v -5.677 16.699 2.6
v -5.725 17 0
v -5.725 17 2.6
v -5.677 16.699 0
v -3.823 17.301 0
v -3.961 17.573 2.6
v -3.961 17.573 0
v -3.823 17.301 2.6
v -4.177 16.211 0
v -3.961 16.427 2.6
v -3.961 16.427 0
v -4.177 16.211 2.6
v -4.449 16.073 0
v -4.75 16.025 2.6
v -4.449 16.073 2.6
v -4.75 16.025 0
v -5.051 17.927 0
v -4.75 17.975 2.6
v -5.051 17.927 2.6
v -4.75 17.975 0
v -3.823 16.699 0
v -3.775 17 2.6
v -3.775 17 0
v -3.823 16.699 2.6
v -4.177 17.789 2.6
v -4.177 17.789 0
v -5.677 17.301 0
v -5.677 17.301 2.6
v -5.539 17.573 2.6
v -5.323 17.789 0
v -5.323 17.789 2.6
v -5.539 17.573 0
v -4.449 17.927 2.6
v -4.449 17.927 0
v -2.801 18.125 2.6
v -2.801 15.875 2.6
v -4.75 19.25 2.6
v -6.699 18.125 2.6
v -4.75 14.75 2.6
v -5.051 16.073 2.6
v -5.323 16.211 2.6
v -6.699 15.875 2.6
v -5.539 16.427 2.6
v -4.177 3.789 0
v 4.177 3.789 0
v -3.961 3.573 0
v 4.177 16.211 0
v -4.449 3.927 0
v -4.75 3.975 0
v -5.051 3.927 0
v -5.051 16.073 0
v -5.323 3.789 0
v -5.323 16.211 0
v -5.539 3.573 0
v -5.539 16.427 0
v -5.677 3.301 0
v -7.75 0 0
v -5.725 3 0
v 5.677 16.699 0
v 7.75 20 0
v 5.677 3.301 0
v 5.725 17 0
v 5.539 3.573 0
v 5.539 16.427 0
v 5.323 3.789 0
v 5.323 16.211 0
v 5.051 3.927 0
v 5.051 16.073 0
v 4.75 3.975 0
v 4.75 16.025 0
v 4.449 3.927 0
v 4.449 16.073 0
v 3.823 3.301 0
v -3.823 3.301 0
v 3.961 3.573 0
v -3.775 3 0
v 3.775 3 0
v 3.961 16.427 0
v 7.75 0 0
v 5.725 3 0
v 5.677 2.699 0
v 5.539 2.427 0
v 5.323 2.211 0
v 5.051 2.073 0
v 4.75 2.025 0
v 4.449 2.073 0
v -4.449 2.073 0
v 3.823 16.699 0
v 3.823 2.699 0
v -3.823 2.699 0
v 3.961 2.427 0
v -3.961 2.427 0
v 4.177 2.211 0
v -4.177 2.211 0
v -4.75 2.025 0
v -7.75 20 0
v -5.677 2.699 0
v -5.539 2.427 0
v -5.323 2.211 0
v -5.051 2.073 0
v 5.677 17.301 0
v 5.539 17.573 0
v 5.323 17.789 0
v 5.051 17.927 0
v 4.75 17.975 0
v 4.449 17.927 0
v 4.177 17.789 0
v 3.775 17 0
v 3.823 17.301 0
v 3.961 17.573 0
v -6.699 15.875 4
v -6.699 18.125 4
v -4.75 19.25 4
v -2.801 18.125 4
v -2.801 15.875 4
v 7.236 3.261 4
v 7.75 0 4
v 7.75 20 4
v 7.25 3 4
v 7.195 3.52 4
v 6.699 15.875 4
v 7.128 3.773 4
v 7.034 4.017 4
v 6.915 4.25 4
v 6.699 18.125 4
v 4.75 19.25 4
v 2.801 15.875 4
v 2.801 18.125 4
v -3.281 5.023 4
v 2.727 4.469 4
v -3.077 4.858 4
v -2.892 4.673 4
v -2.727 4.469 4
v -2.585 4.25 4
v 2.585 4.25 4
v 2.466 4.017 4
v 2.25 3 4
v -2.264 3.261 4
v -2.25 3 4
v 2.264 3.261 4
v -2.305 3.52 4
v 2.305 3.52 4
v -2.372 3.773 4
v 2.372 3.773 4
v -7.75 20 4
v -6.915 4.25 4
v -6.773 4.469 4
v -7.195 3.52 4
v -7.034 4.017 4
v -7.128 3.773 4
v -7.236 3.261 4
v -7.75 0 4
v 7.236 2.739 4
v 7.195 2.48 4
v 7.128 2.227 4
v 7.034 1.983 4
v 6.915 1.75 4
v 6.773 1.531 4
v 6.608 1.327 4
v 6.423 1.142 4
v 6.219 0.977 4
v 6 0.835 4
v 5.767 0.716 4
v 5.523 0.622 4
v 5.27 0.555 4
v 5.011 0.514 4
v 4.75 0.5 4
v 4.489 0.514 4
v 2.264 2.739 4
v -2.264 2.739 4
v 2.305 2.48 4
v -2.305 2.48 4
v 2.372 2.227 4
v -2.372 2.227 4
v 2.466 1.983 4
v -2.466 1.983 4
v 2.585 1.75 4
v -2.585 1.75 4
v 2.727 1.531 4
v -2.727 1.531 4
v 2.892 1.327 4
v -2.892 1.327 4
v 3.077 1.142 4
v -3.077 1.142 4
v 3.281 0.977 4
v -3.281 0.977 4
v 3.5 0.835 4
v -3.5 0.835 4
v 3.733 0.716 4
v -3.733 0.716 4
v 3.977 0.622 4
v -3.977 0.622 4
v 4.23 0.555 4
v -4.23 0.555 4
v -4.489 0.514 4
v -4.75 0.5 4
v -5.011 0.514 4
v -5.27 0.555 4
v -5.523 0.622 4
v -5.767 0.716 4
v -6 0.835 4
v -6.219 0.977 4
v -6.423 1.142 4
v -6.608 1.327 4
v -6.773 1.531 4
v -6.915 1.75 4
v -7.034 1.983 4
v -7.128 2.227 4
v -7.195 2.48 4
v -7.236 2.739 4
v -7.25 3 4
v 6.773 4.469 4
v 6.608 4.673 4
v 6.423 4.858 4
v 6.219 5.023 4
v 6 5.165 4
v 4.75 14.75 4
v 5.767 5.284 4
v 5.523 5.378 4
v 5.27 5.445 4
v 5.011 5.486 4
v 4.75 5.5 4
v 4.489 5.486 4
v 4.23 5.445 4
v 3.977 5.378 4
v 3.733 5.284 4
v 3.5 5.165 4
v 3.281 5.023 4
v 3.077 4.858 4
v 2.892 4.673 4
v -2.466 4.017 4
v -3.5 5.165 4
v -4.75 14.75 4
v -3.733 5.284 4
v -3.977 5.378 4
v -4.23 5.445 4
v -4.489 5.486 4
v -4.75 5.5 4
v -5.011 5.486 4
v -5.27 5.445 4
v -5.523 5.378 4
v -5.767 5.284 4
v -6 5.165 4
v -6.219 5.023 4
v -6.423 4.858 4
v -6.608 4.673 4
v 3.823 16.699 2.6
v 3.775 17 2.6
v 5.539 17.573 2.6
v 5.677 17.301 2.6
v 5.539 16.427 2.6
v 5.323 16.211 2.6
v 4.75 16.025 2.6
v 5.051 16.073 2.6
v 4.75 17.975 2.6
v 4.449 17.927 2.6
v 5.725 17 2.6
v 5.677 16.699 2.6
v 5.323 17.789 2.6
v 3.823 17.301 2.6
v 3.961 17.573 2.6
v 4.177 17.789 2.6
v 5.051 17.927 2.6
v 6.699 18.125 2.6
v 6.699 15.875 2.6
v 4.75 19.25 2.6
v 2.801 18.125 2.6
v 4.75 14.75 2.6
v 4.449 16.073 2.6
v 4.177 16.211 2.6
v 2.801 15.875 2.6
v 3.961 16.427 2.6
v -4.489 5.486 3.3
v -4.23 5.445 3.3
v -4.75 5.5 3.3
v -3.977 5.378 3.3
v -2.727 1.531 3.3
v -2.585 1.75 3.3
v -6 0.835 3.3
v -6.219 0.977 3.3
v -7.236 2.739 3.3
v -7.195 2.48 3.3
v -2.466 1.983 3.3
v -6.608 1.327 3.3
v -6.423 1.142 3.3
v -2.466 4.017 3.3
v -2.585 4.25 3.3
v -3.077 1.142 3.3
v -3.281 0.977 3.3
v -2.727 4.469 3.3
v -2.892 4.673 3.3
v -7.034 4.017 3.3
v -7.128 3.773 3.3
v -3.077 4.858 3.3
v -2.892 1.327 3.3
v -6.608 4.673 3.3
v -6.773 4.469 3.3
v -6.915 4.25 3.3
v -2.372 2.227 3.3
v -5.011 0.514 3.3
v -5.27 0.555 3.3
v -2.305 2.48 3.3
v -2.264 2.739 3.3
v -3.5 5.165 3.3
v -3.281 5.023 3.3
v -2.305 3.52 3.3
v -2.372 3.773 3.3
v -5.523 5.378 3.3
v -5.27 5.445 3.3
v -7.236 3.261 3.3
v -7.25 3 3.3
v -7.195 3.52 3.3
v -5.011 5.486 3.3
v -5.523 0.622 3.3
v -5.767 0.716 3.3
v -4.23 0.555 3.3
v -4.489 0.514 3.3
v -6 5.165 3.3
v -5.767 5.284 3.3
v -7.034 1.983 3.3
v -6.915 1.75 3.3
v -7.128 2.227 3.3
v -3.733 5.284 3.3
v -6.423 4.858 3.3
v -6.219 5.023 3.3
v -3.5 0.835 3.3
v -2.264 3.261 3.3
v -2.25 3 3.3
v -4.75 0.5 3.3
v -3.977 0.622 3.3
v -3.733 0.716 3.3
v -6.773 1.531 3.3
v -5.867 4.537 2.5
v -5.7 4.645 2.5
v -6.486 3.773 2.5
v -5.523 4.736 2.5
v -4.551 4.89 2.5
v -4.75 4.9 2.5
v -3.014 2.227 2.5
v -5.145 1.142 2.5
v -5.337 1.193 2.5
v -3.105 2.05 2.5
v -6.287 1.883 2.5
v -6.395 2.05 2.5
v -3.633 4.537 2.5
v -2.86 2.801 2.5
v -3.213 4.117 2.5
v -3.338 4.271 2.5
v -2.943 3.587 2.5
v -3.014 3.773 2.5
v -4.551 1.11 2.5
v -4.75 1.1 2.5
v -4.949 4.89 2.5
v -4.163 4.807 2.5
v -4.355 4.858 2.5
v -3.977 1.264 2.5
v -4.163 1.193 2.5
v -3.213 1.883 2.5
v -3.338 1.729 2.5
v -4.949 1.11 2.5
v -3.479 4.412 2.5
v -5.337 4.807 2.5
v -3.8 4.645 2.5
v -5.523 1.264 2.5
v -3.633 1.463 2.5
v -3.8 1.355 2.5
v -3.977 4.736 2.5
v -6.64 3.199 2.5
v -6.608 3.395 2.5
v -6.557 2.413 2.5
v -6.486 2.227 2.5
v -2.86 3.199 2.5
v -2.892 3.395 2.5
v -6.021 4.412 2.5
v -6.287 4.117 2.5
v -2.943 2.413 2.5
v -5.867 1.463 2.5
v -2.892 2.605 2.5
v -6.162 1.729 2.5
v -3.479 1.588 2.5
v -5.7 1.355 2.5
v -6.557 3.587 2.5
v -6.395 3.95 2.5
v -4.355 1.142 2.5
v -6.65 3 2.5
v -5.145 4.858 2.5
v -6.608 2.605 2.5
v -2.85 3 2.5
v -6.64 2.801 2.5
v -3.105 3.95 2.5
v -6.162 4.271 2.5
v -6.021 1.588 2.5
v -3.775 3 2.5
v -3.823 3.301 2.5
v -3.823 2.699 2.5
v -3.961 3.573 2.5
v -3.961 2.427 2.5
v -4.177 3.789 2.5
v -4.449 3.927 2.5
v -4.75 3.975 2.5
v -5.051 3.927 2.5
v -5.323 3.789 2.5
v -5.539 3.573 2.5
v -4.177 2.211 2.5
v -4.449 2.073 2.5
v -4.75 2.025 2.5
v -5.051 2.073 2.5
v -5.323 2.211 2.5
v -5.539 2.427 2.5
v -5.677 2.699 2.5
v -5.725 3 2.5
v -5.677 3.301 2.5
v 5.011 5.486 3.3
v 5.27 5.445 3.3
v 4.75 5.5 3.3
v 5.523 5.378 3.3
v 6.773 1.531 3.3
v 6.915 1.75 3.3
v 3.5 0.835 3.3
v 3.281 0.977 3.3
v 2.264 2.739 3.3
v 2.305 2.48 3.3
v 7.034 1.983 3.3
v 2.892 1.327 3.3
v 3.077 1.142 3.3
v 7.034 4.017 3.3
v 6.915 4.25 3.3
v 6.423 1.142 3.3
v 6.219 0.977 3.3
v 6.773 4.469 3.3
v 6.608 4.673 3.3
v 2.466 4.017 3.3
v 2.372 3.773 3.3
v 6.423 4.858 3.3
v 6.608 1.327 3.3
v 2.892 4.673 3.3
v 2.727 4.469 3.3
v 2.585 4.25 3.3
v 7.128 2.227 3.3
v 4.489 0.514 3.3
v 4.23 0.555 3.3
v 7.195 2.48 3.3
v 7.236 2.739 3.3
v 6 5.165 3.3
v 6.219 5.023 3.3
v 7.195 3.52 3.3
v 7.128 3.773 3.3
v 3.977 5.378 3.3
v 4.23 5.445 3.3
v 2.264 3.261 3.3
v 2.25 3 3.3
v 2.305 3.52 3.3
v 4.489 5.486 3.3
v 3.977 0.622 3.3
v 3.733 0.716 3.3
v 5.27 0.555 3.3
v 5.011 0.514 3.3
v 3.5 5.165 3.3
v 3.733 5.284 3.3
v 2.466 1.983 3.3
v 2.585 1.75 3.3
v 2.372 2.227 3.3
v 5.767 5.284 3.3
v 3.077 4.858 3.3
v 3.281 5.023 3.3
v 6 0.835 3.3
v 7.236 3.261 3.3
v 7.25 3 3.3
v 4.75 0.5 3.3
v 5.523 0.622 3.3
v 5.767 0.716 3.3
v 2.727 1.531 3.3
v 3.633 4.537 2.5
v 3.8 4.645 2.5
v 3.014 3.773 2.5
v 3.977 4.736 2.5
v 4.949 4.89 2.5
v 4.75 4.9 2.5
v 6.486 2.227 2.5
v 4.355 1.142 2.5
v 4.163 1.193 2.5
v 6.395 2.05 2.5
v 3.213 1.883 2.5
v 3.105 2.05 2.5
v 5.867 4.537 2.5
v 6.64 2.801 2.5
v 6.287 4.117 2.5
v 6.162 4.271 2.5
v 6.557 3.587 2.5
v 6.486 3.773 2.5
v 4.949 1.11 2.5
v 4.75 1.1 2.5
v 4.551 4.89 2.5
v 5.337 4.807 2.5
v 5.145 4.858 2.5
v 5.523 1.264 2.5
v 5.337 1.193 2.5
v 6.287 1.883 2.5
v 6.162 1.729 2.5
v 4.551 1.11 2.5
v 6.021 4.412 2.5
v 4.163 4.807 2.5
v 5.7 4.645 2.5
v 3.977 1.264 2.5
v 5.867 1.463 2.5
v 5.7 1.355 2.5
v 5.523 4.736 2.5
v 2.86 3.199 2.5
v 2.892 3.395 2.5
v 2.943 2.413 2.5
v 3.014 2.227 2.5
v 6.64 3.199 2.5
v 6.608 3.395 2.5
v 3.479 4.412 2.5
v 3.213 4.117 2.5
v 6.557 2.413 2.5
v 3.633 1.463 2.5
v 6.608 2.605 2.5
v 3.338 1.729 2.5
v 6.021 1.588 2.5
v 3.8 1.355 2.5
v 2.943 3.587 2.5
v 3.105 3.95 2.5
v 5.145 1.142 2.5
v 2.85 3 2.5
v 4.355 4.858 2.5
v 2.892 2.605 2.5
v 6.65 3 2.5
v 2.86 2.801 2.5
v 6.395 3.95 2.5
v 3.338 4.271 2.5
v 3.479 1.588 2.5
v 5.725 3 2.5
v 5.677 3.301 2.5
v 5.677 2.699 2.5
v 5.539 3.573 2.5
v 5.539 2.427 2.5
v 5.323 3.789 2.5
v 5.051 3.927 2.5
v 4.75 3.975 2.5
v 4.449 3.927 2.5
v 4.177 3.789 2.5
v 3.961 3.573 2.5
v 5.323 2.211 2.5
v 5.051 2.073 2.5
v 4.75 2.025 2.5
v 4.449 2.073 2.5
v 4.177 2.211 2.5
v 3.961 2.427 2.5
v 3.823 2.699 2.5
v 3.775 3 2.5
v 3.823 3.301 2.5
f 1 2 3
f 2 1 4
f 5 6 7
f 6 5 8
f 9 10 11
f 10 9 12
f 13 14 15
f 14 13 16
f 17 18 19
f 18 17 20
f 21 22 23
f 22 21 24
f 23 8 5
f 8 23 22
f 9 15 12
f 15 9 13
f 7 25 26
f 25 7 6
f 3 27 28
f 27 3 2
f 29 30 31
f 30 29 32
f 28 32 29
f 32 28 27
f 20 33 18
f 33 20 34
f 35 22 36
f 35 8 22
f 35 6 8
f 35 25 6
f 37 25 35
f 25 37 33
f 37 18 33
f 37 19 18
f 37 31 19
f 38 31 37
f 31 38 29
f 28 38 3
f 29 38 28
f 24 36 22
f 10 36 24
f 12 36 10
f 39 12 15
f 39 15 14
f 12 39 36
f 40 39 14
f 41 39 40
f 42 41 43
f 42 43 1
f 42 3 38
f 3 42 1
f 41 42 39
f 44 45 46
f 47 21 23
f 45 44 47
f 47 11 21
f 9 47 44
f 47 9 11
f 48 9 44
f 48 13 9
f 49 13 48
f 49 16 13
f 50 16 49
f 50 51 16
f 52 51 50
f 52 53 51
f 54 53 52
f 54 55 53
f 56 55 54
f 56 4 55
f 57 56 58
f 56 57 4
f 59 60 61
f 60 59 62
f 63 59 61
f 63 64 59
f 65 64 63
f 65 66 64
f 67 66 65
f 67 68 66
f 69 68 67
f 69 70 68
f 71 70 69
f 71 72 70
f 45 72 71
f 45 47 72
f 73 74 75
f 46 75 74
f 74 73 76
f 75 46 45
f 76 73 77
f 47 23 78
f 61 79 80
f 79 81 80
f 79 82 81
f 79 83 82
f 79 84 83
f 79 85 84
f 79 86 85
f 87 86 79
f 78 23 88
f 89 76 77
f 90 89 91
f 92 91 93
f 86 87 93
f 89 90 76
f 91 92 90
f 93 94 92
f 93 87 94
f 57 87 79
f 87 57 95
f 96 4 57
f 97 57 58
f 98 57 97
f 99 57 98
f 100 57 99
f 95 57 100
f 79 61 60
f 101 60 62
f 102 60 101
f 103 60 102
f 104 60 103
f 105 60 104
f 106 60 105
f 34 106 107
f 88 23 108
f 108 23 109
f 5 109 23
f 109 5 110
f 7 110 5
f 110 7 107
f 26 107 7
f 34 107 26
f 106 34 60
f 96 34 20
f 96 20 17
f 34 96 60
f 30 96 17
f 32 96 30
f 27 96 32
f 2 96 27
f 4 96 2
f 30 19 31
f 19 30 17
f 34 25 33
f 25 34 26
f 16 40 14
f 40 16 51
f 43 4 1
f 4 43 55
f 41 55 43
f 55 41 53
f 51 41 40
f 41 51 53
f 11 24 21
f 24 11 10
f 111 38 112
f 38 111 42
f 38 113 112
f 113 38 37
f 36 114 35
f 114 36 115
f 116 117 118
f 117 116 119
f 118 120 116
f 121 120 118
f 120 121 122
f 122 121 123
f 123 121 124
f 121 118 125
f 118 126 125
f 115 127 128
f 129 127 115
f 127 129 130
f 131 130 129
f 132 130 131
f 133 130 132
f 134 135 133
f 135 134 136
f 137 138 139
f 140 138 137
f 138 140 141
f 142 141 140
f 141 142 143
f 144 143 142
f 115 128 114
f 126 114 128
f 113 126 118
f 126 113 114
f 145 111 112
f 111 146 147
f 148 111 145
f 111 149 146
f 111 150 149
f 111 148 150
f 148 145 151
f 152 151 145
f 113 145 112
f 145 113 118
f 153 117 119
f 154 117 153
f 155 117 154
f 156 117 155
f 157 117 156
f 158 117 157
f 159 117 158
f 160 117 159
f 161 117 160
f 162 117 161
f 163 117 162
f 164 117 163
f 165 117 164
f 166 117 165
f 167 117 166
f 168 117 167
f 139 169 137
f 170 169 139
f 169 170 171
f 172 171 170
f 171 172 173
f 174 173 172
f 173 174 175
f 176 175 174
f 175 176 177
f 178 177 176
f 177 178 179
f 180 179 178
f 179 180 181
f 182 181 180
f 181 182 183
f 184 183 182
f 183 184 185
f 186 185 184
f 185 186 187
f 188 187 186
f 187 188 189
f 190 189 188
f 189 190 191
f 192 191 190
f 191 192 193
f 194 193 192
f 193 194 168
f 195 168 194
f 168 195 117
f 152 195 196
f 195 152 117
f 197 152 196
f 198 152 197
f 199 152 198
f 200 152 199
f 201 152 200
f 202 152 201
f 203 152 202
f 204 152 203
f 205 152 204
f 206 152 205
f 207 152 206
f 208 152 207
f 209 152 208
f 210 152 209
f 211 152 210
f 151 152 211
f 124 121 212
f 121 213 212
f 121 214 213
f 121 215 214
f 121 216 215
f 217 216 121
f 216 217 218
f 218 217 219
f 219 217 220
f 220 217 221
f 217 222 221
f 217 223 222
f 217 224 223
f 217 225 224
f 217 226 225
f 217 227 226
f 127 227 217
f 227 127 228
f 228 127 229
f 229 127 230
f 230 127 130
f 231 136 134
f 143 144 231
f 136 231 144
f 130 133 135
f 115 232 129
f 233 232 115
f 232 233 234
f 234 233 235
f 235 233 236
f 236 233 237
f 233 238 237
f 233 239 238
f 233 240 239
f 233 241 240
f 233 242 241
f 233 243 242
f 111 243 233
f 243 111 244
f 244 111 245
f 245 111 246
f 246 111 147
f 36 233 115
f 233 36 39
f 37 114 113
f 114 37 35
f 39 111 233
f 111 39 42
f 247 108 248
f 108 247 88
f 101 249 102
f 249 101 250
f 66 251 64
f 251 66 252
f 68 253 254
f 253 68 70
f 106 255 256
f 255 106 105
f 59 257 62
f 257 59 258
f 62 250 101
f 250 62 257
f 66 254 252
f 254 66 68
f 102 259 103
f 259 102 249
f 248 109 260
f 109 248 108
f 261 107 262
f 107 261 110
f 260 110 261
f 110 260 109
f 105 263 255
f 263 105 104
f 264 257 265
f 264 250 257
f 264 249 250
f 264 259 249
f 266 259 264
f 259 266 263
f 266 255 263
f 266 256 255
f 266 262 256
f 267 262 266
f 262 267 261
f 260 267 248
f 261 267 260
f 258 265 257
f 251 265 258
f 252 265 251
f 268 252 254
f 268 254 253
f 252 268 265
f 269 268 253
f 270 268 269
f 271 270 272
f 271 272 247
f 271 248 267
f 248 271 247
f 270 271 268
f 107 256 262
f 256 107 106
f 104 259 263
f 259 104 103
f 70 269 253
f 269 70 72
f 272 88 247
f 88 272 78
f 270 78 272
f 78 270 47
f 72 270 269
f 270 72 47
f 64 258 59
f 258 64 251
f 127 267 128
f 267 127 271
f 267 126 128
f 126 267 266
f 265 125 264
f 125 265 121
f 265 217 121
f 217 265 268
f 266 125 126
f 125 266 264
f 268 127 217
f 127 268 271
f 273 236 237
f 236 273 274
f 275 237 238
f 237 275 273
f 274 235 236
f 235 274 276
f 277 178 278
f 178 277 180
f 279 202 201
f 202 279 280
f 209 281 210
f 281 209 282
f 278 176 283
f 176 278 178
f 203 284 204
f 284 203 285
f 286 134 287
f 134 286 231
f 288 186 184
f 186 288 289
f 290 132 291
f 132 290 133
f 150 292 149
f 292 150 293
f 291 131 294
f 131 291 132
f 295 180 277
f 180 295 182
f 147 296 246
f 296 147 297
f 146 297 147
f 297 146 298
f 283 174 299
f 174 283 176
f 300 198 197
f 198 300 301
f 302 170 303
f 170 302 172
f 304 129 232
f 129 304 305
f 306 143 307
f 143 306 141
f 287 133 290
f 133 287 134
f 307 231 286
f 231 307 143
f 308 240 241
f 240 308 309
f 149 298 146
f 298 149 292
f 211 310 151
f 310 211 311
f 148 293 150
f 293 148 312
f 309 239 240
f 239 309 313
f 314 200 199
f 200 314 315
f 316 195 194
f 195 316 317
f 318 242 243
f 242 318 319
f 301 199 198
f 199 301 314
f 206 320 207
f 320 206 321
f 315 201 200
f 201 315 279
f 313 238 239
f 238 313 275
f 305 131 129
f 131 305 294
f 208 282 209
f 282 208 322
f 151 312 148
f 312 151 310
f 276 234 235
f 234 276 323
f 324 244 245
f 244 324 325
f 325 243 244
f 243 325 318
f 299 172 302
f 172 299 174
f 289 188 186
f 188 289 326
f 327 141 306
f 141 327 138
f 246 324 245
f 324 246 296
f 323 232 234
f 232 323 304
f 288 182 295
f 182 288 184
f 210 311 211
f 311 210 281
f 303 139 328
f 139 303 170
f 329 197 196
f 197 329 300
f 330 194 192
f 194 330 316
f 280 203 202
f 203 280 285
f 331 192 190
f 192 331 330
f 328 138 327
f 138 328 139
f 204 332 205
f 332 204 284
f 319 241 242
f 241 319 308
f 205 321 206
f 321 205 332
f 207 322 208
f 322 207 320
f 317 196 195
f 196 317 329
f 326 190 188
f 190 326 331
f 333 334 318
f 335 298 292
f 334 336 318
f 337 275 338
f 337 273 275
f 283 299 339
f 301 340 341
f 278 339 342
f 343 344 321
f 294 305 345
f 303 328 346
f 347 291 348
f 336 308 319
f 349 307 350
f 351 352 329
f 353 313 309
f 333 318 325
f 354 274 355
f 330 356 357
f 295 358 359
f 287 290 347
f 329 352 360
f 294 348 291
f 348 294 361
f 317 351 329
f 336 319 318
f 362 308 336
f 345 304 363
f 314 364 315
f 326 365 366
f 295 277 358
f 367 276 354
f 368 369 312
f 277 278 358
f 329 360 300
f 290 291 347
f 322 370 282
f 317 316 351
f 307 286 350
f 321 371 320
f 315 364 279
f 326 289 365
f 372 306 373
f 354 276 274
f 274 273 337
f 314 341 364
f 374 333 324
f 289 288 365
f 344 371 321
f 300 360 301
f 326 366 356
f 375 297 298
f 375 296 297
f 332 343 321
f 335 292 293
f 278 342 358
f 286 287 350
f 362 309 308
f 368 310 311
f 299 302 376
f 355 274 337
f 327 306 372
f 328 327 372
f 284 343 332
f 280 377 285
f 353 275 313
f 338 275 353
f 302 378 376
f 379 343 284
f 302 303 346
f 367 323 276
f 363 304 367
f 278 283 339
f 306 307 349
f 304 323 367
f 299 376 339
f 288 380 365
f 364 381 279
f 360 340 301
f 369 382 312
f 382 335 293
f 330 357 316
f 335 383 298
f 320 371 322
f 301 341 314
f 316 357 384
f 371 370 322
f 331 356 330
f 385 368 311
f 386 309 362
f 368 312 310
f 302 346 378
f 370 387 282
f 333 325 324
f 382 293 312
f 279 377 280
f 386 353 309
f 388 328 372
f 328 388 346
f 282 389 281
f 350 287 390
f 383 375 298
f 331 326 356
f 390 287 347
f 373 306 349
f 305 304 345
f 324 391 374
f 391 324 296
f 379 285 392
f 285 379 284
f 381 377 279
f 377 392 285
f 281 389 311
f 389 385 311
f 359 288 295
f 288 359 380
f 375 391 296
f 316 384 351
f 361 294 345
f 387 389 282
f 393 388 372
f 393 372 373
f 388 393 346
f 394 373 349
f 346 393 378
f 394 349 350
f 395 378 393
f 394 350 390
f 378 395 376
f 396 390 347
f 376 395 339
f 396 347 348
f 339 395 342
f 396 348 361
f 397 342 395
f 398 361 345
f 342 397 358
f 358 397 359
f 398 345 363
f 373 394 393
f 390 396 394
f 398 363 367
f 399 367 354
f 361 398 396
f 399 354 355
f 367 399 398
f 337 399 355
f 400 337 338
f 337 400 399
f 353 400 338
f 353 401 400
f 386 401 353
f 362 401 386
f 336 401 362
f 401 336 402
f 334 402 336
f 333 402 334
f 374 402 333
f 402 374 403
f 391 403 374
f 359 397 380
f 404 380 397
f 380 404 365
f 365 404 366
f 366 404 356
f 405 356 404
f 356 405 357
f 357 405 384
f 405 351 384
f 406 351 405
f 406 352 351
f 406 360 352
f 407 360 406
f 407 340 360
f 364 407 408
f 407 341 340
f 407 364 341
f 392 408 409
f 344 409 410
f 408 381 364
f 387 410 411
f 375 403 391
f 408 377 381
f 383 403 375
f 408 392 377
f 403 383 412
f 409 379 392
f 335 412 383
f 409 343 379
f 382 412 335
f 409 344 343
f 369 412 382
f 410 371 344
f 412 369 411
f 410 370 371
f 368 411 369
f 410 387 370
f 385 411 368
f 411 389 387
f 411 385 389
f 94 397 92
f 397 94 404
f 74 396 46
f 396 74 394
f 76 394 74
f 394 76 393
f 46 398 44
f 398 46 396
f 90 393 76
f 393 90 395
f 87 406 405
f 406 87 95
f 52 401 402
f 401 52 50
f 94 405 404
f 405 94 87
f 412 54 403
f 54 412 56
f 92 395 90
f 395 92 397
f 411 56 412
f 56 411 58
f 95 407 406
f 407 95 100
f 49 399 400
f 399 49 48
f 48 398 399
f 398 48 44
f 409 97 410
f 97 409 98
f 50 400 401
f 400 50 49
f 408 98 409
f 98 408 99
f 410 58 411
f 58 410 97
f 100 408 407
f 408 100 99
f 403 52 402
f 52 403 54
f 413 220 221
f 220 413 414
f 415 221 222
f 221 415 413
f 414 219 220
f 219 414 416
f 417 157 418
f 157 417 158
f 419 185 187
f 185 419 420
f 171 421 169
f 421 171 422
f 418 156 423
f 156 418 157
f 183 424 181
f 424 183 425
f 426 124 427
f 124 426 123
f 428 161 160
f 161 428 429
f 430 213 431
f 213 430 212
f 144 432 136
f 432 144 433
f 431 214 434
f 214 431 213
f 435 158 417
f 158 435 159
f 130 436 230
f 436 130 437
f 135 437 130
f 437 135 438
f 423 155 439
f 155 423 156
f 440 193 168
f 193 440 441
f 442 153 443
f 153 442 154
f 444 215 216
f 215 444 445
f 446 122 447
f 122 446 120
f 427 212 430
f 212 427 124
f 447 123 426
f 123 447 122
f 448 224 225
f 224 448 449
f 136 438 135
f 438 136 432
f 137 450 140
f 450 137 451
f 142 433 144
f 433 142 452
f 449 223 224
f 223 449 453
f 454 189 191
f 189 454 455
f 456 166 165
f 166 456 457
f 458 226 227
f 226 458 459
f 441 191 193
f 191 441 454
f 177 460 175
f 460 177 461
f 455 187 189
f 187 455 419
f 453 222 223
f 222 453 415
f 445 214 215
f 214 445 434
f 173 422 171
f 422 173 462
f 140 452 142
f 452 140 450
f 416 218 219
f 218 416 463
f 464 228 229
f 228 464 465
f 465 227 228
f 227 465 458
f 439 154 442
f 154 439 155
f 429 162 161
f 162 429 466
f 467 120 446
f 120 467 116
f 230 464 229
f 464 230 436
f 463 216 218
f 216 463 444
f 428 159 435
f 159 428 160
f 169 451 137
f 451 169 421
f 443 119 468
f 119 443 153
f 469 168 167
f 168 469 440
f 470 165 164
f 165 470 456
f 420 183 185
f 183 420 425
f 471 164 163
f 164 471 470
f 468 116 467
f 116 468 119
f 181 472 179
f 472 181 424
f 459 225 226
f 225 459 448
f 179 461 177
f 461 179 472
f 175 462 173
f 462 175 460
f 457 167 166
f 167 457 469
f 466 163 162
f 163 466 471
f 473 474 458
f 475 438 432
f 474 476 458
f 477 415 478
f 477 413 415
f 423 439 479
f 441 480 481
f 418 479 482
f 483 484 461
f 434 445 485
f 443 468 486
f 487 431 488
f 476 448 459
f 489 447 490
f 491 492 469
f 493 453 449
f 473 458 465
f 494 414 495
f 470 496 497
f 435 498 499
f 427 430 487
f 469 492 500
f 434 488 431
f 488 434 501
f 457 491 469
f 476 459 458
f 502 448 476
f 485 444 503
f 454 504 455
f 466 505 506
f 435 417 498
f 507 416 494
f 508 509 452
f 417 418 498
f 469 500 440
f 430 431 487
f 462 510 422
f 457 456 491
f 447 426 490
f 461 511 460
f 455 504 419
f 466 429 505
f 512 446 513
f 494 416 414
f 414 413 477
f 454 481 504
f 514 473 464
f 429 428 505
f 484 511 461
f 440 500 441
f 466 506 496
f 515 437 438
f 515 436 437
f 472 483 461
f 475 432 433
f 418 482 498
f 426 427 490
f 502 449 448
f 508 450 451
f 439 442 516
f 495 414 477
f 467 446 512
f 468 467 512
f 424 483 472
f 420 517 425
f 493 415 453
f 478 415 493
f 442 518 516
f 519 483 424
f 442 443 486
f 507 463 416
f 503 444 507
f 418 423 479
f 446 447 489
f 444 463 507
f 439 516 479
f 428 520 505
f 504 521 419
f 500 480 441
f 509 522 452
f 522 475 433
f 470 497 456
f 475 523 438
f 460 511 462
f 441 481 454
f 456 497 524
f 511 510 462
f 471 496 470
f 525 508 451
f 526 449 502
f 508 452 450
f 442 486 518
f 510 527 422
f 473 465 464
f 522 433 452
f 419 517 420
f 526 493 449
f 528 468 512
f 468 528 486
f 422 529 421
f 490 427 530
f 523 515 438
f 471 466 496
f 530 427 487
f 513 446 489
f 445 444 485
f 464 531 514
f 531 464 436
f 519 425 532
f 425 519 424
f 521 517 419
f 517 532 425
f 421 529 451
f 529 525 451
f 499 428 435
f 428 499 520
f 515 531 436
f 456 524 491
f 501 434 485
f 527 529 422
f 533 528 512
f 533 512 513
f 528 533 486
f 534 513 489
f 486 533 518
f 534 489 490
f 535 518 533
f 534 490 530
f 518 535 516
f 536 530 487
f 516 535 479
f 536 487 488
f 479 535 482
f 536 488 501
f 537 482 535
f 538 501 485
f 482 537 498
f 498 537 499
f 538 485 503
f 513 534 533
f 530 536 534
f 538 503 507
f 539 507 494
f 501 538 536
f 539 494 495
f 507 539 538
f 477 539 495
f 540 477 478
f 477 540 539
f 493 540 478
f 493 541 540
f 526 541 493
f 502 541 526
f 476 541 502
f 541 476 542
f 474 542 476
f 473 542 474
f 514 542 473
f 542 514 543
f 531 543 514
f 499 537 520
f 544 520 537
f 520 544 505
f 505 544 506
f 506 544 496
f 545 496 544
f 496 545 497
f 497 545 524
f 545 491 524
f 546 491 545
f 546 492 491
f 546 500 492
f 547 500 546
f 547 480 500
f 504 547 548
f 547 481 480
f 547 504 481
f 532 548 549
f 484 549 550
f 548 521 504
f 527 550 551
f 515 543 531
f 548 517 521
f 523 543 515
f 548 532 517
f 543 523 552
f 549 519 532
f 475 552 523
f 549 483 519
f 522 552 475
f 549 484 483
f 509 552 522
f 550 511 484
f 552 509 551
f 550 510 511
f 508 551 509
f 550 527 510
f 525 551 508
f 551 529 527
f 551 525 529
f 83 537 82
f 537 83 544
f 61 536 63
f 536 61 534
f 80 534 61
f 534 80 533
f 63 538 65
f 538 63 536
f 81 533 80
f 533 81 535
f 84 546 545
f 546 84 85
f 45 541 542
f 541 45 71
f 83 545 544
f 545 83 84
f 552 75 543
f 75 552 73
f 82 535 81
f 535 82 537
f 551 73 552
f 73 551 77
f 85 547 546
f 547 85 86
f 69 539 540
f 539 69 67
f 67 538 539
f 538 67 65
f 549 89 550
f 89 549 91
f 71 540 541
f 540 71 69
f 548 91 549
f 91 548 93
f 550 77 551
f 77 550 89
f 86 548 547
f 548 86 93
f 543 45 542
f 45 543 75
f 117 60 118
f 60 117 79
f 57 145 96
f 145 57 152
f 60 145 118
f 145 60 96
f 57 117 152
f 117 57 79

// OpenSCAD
include <../libs/hardware-recess.scad>;

endstop_offset=20;
extra_width = 6;

module endstop_mount(){
    translate([-4.75,0,0])hole_w_end(4, 1.4, "round", M2);
    // Front screw hole for endstop
    translate([4.75,0,0])hole_w_end(4, 1.4, "round", M2);
}

module endstop_nut(){
    translate([-4.75,0,0])hole_w_end(4, 1.4, "hex", M2);
    // Front screw hole for endstop
    translate([4.75,0,0])hole_w_end(4, 1.4, "hex", M2);
}


difference(){
    translate([-4.75 - extra_width/2, 0, 0]) 
        cube([4.75*2 + extra_width , endstop_offset, 4]);
    translate([0, 3, 0])
        endstop_mount();
    translate([0, endstop_offset - 3, 0])
        endstop_nut();
}
